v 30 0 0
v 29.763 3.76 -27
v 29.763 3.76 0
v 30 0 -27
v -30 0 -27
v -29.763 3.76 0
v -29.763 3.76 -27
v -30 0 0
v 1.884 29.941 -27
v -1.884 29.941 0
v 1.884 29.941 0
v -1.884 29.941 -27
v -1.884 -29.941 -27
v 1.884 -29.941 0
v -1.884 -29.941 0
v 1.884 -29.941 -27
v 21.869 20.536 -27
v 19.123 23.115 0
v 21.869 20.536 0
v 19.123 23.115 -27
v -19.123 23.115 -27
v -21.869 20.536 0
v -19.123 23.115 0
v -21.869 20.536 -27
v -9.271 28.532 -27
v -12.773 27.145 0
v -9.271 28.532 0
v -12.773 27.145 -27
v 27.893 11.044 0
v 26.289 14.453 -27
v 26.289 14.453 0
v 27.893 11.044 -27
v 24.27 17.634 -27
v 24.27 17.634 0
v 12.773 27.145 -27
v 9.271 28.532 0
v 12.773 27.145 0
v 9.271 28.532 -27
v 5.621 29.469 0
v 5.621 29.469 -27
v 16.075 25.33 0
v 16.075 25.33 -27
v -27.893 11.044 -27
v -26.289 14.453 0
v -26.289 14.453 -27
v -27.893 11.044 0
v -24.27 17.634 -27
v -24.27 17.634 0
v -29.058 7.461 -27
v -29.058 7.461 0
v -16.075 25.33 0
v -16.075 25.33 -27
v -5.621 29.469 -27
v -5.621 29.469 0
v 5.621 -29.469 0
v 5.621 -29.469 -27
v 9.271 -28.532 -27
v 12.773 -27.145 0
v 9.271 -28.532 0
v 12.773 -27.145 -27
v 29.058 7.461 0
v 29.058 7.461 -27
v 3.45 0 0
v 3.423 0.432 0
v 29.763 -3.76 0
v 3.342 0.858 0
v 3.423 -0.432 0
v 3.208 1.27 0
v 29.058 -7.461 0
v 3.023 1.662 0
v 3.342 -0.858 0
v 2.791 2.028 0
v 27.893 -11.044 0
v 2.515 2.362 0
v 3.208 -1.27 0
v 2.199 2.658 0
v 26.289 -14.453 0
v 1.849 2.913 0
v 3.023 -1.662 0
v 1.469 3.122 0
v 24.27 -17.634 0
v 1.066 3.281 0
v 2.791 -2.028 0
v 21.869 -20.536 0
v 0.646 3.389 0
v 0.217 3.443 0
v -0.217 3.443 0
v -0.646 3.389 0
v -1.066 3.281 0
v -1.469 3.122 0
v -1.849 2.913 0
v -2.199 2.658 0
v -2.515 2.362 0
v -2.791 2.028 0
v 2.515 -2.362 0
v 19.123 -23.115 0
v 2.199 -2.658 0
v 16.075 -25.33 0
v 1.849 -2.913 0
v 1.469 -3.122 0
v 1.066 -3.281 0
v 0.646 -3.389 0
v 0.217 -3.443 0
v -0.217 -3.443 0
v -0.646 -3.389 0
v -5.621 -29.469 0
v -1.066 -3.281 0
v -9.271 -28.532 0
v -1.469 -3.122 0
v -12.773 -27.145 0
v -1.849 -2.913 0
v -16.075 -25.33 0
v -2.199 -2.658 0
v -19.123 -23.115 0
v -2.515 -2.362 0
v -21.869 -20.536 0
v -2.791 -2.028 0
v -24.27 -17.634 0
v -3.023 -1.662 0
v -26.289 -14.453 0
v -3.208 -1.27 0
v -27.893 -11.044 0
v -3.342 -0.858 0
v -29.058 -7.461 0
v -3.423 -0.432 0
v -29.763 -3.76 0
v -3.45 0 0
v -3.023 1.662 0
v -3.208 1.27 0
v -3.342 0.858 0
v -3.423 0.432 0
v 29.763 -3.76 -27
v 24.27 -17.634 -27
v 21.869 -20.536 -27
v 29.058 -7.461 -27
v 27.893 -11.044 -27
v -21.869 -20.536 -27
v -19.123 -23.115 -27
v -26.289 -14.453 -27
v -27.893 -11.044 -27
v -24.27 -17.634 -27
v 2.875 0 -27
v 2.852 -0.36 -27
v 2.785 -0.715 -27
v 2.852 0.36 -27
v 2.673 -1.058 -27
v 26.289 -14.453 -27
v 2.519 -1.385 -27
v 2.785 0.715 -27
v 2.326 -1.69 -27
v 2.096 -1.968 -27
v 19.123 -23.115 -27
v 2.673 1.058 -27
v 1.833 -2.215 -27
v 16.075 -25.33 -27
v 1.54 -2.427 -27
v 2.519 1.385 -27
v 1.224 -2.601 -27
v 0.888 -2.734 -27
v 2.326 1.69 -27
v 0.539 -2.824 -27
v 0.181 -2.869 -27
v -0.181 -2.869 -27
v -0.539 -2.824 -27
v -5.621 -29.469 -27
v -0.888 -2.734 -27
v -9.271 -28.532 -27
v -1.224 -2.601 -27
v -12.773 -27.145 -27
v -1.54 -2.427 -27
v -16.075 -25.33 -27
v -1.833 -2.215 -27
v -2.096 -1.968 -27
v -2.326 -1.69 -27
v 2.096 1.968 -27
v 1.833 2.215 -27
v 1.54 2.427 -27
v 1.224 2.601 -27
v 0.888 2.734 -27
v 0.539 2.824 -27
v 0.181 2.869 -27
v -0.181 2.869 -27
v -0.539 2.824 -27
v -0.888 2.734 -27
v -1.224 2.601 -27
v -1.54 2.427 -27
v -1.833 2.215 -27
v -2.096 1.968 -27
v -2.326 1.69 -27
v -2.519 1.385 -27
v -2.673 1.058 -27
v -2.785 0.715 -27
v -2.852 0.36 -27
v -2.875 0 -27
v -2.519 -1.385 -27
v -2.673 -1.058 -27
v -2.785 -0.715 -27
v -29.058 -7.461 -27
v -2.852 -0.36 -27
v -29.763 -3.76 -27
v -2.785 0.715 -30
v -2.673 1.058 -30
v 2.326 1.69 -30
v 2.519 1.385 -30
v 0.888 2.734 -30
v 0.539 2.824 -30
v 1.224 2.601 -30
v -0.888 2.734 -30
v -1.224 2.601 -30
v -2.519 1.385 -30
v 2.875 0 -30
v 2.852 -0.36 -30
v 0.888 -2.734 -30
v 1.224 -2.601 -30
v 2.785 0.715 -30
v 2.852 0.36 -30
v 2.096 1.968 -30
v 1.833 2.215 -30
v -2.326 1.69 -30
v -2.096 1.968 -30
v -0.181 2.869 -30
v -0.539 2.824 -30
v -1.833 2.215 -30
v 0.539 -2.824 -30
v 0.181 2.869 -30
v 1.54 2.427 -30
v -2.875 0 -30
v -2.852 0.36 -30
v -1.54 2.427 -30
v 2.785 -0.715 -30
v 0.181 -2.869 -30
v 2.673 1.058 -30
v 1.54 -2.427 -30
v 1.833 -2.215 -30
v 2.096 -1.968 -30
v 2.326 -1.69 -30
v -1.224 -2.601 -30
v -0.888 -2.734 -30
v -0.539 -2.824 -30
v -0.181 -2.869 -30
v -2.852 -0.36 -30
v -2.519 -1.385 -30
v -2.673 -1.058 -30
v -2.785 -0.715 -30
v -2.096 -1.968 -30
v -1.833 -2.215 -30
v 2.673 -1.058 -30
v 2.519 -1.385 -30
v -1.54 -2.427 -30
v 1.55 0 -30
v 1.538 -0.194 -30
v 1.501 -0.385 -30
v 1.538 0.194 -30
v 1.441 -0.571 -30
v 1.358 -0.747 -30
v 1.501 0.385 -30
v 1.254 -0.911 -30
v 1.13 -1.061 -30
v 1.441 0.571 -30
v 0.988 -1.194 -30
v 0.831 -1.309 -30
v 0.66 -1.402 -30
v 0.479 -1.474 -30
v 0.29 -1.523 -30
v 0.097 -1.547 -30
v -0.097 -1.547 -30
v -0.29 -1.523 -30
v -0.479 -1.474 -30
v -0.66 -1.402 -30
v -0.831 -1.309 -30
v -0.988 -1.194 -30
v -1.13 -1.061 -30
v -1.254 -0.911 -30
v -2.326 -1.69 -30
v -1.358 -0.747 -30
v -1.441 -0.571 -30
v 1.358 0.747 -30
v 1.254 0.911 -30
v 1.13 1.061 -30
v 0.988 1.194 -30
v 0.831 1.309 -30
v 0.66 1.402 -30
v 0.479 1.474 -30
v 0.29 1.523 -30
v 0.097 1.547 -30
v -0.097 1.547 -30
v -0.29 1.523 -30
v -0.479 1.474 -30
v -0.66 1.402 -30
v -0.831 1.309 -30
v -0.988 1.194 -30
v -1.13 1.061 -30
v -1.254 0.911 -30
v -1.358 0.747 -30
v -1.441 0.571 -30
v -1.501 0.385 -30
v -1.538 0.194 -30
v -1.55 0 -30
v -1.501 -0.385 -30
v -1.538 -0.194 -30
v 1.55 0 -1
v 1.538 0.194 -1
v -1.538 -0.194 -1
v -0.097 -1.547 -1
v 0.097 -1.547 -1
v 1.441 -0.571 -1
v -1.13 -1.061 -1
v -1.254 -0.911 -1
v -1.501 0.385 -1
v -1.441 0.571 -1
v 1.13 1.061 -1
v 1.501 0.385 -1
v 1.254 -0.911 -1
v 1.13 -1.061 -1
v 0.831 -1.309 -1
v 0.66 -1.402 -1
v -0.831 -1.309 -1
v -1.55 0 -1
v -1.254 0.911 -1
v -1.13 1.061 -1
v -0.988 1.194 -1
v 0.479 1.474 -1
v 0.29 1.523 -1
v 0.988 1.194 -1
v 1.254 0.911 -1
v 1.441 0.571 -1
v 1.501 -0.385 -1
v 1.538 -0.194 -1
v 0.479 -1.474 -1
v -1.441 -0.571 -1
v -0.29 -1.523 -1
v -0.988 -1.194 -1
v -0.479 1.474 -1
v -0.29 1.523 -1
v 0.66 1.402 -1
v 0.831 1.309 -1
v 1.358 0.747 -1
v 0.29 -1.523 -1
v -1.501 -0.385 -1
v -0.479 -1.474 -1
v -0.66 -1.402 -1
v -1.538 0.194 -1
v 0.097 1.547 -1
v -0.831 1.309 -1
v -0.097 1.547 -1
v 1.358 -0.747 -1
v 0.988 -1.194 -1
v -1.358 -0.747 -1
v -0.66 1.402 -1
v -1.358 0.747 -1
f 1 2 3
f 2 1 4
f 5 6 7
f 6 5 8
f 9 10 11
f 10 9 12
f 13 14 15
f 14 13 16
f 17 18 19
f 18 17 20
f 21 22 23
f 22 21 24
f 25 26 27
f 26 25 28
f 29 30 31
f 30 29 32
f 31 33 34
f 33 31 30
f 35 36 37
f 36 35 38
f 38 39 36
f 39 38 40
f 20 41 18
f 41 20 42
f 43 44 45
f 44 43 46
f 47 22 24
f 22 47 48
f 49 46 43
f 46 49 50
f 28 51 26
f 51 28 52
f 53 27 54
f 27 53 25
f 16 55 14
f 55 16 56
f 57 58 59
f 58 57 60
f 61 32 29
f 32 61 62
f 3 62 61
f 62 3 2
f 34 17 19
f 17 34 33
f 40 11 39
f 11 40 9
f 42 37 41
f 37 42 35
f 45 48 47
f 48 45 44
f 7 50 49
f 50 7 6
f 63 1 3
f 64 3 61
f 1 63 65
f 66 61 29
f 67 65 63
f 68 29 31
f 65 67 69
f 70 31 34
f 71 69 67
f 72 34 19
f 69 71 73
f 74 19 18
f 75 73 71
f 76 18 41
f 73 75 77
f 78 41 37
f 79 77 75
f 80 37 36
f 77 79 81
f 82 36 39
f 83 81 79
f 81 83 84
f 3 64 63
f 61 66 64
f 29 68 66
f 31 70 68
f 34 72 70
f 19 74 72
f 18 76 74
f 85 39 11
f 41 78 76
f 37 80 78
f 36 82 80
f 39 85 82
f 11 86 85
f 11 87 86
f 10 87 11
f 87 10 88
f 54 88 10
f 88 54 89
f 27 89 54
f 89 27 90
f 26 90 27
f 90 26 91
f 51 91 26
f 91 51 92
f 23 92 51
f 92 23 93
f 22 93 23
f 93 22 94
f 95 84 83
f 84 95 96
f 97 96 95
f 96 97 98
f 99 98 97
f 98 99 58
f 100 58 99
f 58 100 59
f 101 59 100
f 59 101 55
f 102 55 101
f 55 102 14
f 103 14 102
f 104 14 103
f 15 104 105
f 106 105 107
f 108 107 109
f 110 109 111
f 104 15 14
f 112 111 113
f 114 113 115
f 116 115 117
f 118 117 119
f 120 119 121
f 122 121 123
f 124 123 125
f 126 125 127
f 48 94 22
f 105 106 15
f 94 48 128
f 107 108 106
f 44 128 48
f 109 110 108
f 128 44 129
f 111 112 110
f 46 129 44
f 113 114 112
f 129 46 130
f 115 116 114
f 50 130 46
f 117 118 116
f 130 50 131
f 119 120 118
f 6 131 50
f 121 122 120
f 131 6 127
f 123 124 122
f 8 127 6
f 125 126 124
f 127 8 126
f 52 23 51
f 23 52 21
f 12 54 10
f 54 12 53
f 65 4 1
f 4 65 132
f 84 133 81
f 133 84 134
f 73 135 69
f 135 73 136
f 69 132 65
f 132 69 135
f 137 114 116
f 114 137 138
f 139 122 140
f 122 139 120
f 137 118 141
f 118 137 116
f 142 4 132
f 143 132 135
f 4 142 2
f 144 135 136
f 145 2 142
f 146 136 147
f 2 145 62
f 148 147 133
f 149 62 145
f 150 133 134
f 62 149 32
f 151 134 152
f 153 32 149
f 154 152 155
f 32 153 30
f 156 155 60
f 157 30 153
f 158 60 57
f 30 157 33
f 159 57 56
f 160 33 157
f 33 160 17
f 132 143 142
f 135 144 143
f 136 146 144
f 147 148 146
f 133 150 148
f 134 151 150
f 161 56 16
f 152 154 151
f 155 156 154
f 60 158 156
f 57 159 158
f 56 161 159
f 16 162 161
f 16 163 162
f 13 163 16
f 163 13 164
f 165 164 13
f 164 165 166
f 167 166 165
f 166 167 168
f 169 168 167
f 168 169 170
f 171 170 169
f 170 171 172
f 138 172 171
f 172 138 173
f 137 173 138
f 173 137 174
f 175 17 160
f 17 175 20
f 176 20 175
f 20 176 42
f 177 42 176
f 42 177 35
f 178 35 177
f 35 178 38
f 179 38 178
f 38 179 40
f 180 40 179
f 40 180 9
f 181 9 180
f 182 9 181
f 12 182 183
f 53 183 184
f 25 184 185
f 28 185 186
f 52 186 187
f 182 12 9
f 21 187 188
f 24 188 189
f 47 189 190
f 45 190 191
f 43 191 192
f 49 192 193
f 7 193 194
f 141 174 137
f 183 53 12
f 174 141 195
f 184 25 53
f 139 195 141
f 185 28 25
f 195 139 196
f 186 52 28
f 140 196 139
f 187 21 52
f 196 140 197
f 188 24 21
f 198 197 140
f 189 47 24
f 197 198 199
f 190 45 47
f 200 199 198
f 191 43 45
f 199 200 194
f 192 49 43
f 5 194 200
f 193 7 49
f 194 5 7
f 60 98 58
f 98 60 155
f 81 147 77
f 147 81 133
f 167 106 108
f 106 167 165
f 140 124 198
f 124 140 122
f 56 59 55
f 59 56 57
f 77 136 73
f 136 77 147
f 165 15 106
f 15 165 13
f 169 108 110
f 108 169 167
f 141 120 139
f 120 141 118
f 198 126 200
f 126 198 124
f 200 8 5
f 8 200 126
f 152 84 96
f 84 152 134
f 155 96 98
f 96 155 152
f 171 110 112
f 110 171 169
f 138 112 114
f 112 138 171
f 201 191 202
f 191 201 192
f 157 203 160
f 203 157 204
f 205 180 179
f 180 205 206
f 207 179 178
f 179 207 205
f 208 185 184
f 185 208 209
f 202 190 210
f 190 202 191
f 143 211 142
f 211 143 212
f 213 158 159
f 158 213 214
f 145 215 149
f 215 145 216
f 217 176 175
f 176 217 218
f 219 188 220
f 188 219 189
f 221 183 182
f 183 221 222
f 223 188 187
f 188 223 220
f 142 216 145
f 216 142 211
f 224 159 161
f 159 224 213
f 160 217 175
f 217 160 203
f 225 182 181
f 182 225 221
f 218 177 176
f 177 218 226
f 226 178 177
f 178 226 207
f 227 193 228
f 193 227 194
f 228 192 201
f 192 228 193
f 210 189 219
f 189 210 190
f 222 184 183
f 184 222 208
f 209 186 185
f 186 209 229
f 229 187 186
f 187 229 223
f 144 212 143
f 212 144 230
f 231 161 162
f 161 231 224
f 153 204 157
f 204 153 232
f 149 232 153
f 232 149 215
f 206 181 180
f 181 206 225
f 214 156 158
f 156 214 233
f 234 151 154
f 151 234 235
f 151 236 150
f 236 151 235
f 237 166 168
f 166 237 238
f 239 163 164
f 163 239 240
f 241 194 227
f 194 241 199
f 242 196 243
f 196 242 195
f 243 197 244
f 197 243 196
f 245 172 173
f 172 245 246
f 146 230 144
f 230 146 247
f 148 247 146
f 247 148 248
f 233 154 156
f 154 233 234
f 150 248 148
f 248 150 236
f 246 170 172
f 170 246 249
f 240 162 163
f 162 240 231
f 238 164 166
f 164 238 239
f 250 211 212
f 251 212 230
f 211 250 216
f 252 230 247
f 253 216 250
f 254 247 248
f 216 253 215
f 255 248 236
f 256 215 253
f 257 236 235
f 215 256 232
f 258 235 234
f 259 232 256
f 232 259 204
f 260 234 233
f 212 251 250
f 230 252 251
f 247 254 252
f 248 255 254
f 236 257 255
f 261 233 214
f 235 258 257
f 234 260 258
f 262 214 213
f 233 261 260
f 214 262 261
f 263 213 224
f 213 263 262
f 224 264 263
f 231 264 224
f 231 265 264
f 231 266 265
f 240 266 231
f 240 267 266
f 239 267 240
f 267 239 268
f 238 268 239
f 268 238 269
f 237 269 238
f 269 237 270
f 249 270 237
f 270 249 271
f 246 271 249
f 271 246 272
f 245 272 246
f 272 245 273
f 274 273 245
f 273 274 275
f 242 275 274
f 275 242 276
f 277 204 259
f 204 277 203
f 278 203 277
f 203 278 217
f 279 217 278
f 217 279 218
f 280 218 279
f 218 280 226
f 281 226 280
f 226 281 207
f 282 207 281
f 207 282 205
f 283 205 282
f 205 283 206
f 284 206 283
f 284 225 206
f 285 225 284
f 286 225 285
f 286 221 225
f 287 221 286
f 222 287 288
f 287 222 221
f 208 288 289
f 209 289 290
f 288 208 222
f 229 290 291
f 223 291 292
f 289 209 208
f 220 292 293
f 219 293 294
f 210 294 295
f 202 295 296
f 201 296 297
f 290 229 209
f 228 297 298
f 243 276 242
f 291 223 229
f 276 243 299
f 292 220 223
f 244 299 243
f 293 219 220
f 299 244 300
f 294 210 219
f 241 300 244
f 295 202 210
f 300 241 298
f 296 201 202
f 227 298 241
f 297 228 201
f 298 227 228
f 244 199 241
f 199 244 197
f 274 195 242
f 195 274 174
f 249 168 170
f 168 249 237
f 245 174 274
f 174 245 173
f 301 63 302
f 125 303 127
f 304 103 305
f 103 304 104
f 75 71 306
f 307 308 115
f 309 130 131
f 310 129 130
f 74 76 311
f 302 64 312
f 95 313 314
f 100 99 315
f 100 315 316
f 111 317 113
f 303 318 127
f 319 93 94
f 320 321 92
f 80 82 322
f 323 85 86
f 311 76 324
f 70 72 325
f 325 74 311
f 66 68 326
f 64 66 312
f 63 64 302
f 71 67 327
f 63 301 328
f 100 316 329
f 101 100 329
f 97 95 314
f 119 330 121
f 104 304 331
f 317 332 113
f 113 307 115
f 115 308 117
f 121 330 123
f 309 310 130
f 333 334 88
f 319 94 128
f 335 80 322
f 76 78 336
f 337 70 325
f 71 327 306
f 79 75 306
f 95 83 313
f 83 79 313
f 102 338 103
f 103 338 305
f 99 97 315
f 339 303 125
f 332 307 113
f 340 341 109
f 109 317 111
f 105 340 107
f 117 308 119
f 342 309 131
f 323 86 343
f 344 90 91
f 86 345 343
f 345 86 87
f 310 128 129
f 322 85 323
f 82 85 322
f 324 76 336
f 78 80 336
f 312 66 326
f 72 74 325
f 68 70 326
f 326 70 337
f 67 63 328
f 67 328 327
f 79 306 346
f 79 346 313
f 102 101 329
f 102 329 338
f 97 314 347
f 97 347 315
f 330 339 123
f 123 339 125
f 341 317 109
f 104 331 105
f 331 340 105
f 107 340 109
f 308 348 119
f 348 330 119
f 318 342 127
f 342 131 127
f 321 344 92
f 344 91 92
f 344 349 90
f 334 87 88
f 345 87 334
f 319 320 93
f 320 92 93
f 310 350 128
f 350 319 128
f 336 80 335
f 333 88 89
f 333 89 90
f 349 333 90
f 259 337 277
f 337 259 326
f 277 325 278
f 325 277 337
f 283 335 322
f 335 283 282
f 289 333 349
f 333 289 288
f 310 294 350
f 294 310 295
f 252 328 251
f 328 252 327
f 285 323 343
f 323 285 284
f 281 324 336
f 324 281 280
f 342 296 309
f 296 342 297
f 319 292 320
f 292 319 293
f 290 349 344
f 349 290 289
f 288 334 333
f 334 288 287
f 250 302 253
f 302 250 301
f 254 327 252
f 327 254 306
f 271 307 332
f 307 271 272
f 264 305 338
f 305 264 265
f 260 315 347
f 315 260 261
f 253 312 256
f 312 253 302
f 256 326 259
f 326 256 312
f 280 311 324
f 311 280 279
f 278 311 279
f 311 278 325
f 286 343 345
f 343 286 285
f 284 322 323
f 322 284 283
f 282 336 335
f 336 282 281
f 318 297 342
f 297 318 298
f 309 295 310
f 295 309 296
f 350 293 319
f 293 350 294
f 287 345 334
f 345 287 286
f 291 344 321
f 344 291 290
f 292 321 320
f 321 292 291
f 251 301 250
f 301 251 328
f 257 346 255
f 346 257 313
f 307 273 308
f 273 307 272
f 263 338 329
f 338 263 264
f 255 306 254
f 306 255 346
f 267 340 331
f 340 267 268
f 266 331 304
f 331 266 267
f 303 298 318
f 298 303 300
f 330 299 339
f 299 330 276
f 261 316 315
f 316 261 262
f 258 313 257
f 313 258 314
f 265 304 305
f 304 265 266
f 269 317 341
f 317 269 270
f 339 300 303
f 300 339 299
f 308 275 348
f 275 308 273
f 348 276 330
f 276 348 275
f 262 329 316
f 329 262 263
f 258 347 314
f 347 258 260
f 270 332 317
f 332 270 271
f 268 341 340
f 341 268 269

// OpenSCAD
$fn = 50;

difference() {
	union() {
		translate(v = [0, 0, -27.0]) {
			cylinder(h = 27, r = 30.0);
		}
		#translate(v = [0, 0, -30.0]) {
			cylinder(h = 30, r = 2.875);
		}
	}
	union() {
		translate(v = [0, 0, 0]) {
			rotate(a = [0, 0, 0]) {
				difference() {
					union() {
						translate(v = [0, 0, -30.0]) {
							cylinder(h = 30, r = 1.25);
						}
						translate(v = [0, 0, -1.0]) {
							cylinder(h = 1.0, r1 = 1.55, r2 = 3.45);
						}
						translate(v = [0, 0, -30.0]) {
							cylinder(h = 30, r = 1.55);
						}
						translate(v = [0, 0, -30.0]) {
							cylinder(h = 30, r = 1.25);
						}
					}
					union();
				}
			}
		}
	}
}
